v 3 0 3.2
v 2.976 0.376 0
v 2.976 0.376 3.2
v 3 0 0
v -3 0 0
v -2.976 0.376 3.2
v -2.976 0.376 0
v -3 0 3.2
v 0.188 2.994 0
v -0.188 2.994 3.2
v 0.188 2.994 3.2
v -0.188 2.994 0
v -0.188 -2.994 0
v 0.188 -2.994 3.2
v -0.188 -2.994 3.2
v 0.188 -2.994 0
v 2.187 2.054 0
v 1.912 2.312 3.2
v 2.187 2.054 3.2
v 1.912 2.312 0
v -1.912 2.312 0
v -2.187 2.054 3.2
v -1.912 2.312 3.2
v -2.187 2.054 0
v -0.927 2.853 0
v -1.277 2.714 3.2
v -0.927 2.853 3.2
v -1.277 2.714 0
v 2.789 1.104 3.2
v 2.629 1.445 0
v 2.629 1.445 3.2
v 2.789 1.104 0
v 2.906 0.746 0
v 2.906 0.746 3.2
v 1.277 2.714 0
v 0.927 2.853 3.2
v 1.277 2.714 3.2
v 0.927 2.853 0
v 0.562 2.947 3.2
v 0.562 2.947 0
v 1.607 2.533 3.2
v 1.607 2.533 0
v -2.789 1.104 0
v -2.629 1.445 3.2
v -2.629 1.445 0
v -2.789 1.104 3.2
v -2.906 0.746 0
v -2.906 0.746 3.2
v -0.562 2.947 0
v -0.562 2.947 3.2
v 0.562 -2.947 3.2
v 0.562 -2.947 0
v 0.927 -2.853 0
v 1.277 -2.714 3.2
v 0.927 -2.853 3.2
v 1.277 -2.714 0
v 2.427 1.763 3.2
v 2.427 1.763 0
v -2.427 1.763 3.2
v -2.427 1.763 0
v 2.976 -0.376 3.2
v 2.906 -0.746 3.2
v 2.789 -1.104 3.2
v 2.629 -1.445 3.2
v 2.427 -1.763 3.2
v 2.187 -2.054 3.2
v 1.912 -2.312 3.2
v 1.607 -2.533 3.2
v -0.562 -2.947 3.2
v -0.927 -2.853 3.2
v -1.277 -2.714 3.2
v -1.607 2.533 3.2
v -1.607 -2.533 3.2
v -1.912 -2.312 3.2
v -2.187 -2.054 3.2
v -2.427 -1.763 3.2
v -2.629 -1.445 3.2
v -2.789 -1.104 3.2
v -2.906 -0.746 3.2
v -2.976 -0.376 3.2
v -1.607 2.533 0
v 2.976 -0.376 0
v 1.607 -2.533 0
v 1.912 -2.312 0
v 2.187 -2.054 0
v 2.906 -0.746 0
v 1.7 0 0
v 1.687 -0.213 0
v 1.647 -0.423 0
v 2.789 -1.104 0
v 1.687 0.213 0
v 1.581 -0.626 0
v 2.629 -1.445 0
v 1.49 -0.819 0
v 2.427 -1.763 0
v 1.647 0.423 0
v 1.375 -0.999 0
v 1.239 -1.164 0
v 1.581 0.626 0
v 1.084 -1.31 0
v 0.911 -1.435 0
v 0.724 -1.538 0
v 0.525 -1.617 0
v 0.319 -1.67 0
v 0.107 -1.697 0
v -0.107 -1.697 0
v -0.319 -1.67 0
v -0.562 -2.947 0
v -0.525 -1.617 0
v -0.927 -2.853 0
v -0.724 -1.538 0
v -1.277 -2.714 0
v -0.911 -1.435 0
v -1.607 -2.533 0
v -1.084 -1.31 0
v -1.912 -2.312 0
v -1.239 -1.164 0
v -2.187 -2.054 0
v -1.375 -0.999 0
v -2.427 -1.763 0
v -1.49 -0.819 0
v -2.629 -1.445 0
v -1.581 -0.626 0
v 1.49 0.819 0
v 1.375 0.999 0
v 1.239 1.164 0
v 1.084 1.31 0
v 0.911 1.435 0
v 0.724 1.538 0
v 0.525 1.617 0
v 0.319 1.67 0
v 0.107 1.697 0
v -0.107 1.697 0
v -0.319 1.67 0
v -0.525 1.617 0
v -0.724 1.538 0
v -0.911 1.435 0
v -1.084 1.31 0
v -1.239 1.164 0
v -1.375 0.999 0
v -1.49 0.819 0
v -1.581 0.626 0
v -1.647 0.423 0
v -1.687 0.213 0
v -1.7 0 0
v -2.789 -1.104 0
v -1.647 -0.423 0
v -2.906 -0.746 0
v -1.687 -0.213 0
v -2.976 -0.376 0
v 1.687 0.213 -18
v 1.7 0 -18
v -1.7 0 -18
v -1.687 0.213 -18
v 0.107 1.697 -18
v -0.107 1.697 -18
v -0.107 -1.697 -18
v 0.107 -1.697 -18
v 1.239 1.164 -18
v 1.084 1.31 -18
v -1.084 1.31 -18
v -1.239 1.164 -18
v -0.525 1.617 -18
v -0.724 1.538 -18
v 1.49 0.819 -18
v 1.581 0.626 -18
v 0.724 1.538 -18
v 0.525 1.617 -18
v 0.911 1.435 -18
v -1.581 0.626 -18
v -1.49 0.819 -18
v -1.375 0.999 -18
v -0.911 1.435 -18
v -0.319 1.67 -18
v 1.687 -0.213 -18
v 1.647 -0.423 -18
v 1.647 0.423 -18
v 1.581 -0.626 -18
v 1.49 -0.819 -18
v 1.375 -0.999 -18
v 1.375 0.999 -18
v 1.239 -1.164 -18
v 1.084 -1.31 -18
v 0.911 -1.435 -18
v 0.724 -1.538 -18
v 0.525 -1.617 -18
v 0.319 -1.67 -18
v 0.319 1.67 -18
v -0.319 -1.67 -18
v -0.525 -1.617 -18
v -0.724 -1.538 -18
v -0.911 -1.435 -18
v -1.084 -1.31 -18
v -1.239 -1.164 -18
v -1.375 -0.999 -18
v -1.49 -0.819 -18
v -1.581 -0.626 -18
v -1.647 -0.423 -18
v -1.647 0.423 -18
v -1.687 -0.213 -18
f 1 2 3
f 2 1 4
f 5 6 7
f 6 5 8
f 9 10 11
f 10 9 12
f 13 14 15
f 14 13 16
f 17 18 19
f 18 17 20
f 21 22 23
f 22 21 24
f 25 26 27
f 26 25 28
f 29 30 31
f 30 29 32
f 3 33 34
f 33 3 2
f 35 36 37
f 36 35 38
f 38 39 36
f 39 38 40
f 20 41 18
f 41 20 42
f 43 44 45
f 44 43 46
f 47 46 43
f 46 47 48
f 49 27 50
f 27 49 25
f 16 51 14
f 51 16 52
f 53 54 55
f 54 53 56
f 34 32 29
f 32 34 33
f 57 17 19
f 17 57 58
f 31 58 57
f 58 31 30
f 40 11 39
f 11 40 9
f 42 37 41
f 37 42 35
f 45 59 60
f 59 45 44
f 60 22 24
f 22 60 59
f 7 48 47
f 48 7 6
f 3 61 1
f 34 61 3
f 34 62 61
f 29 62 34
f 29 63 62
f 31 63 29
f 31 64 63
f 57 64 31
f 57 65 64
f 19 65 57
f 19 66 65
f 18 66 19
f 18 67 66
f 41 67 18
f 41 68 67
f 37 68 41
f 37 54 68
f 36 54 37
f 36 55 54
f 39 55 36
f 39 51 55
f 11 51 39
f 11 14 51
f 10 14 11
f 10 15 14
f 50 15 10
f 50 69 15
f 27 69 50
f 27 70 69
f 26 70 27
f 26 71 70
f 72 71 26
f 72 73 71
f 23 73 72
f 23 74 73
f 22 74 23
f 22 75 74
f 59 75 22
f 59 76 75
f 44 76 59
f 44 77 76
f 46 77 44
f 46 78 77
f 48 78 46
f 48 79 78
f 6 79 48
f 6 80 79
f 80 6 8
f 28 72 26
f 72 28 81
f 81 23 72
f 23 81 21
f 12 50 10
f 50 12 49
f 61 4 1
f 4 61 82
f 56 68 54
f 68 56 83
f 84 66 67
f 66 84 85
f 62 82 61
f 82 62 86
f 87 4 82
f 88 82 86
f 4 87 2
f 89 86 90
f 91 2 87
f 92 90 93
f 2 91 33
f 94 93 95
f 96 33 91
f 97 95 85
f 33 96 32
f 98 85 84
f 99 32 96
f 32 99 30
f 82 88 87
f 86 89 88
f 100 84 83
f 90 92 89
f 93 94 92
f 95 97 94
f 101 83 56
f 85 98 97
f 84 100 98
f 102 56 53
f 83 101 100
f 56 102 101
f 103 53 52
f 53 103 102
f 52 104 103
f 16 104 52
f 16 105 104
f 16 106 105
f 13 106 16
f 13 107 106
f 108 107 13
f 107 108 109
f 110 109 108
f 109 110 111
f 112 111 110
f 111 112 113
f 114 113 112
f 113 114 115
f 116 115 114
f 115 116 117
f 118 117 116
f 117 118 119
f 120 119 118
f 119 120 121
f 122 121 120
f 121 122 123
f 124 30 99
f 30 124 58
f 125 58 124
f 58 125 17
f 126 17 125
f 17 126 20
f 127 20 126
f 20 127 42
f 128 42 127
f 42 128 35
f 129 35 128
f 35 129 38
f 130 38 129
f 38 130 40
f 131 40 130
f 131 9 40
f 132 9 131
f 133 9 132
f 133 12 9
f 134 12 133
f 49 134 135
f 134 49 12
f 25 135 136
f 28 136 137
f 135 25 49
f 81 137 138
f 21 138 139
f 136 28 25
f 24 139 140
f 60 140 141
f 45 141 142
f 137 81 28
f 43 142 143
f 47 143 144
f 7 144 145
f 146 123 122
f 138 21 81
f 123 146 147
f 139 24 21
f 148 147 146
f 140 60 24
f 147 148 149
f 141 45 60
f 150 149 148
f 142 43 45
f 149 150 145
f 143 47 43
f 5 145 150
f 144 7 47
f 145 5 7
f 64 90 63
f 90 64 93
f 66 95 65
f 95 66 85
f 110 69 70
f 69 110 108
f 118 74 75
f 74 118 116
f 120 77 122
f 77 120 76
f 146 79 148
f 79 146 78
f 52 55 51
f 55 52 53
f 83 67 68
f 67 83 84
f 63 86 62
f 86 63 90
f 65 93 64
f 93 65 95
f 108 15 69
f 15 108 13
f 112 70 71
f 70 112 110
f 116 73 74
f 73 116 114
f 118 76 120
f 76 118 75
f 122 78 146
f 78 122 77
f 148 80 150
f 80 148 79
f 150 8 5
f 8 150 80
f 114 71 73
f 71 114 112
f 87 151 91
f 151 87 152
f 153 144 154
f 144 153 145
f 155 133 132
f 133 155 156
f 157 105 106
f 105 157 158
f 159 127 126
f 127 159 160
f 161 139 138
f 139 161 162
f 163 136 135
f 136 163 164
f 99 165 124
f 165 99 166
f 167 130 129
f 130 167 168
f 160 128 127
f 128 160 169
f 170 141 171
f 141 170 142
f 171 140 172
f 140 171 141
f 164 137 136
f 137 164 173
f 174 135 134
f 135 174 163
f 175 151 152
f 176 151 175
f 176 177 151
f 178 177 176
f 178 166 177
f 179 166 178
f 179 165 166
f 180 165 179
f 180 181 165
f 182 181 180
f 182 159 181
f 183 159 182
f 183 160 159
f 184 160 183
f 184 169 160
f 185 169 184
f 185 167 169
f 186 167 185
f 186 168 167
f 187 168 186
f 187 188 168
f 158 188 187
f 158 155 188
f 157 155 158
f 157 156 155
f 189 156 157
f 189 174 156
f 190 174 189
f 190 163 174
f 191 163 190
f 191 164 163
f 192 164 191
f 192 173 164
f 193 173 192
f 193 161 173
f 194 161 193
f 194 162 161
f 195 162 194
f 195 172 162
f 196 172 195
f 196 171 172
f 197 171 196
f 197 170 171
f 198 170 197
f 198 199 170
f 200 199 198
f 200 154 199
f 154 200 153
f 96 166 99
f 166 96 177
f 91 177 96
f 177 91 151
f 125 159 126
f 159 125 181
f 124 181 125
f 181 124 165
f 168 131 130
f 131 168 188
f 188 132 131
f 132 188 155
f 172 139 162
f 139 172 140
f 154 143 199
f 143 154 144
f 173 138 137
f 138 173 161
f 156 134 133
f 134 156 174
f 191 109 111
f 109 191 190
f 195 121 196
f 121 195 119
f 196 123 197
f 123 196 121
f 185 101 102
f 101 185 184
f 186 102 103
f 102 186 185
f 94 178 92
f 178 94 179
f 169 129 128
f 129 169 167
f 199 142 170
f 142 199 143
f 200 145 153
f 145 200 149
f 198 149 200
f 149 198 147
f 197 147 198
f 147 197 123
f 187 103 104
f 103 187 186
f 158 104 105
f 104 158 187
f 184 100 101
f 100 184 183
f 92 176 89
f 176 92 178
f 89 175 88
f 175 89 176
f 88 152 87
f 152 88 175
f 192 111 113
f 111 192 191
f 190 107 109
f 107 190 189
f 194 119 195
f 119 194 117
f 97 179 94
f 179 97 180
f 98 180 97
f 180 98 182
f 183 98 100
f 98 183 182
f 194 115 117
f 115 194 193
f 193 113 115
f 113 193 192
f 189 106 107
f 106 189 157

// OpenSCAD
$fn = 50;


difference() {
	union() {
		translate(v = [0, 0, 0]) {
			rotate(a = [0, 0, 0]) {
				cylinder(h = 3.2000000000, r = 3.0000000000);
			}
		}
		translate(v = [0, 0, -18]) {
			rotate(a = [0, 0, 0]) {
				cylinder(h = 18, r = 1.7000000000);
			}
		}
	}
	union();
}
